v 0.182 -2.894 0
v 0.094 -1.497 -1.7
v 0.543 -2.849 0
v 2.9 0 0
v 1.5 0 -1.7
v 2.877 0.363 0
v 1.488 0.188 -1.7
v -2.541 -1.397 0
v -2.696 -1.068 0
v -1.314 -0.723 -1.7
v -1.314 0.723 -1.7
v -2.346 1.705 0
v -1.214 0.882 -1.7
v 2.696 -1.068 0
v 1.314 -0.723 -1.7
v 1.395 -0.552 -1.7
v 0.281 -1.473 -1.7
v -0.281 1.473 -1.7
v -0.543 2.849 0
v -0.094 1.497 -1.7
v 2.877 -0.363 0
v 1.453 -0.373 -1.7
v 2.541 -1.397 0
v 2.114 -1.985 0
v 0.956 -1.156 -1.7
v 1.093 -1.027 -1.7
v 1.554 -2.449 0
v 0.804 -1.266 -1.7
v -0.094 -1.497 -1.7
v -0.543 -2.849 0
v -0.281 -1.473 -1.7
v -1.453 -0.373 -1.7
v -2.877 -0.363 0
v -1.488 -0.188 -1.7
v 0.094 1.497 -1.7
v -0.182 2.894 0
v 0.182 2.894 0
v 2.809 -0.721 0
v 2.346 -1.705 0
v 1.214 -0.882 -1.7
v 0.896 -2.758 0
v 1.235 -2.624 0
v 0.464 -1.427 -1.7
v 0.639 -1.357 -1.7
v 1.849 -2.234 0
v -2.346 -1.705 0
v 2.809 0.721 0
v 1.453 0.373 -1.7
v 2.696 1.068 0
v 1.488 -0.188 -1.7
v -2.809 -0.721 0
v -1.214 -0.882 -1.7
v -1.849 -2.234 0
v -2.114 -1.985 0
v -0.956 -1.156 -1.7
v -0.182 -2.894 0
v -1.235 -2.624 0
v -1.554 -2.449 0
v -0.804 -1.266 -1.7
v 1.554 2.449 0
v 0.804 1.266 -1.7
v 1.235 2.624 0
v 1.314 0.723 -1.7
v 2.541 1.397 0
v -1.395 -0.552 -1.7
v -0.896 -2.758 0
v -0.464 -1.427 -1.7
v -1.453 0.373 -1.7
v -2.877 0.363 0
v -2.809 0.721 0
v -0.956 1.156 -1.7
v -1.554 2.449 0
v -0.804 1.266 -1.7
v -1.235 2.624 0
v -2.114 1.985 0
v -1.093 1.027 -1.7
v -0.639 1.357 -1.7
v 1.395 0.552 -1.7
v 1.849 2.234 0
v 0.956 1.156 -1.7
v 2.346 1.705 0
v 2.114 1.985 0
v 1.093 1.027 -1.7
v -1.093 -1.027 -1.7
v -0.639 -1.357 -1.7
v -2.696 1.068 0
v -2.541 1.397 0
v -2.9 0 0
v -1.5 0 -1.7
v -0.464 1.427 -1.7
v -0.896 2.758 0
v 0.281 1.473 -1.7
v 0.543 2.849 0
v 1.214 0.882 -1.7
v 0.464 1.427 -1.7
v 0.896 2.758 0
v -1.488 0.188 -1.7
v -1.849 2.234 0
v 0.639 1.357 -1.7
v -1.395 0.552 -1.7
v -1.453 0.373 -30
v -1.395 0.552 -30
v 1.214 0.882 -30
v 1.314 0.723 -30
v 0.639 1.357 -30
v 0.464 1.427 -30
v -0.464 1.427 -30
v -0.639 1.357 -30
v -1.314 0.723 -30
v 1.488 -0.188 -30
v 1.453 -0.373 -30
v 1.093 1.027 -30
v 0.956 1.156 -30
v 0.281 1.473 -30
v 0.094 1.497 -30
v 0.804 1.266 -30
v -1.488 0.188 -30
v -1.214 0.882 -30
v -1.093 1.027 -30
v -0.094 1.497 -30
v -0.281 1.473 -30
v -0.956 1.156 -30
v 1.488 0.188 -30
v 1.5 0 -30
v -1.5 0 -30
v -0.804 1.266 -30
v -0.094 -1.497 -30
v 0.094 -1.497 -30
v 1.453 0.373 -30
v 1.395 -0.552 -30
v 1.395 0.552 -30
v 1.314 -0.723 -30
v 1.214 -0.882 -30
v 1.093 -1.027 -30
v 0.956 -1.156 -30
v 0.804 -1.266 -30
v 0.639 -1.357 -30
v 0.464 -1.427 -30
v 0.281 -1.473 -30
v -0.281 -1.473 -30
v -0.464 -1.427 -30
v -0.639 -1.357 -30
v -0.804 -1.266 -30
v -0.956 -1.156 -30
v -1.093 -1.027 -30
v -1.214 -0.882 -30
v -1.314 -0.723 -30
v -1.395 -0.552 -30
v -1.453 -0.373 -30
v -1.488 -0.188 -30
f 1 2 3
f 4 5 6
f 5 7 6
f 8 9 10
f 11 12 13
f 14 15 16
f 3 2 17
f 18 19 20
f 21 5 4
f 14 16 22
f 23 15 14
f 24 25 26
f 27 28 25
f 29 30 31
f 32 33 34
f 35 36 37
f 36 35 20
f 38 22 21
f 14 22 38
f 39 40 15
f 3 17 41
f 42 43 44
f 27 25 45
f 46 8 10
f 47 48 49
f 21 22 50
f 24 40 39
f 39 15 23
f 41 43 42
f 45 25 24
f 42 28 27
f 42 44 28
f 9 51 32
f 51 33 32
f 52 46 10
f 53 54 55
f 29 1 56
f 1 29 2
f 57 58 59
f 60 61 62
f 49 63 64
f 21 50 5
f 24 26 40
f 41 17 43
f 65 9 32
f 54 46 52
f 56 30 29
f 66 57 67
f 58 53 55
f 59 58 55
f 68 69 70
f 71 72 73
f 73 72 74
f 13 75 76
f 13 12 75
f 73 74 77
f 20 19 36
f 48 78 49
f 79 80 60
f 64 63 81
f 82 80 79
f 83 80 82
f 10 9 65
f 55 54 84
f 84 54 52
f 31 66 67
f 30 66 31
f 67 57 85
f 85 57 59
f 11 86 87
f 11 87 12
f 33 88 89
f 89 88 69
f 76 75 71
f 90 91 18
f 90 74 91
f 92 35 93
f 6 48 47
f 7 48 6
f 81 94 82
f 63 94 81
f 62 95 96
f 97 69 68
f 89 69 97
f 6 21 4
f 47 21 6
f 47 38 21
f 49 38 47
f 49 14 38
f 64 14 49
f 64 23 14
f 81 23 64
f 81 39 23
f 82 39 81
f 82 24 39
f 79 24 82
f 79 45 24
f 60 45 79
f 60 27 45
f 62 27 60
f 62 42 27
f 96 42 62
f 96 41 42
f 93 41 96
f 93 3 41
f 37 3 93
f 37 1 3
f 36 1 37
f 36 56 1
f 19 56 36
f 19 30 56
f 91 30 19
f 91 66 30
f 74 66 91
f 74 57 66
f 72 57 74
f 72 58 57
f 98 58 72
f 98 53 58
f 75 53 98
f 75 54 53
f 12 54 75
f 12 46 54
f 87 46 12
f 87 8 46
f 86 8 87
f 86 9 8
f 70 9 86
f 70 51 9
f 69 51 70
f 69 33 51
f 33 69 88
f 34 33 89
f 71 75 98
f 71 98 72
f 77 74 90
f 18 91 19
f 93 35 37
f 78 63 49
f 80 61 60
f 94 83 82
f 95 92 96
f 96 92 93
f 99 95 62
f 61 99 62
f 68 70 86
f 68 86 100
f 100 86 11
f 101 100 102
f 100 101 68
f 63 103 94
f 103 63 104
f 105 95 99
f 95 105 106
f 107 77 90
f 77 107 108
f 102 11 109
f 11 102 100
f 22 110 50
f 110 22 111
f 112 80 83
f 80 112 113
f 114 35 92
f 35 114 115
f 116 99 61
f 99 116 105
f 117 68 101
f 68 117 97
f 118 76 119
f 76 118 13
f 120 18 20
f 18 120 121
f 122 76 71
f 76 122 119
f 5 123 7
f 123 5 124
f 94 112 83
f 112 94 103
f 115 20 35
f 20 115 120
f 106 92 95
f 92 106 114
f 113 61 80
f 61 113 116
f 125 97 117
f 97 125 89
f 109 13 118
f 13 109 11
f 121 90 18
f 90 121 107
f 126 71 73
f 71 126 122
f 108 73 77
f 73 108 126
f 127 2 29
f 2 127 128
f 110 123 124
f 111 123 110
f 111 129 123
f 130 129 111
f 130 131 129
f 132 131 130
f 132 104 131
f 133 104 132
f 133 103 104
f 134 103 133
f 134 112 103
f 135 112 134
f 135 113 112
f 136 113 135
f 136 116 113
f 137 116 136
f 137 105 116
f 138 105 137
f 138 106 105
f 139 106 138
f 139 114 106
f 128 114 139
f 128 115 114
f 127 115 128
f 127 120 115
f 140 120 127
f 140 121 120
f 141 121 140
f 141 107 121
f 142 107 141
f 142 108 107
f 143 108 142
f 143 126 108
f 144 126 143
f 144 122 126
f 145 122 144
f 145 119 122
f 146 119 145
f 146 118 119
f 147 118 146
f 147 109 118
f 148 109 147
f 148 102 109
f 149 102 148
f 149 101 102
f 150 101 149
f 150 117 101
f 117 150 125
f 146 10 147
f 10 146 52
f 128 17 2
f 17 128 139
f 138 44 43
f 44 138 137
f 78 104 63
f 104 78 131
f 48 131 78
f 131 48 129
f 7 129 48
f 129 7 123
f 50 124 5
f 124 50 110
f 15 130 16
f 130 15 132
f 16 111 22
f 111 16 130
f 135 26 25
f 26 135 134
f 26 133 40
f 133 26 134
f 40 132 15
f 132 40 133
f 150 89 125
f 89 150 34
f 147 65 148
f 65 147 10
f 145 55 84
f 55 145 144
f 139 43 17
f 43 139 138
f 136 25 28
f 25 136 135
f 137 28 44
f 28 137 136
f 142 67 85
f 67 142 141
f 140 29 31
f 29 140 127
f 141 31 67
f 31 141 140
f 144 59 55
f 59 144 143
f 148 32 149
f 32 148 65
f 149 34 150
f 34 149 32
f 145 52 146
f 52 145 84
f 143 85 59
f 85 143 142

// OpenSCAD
// Generated by SolidPython 1.1.3 on 2023-03-13 21:43:03
$fn = 50;


difference() {
	union() {
		translate(v = [0, 0, -1.7000000000]) {
			rotate(a = [0, 0, 0]) {
				cylinder(h = 1.7000000000, r1 = 1.5000000000, r2 = 2.9000000000);
			}
		}
		translate(v = [0, 0, -30]) {
			rotate(a = [0, 0, 0]) {
				cylinder(h = 30, r = 1.5000000000);
			}
		}
	}
	union();
}
/***********************************************
*********      SolidPython code:      **********
************************************************
 
from solid import *
import os
import subprocess

import oomB

import opsc_library_gen

mode = "laser"
#mode = "3d_print"

defined_objects = {}

radius_dict = {}
countersunk_dict = {}


def set_mode(m):
    global mode
    mode = m
    radius_dict['M6'] = 6.5/2
    radius_dict['M3'] = 3.3/2
    if mode == "laser":
        radius_dict['M6'] = 6/2
        radius_dict['M3'] = 3/2

    countersunk_dict['M3'] = {}
    countersunk_dict['M3']['little_rad'] = radius_dict['M3']
    countersunk_dict['M3']['big_rad'] = (5.5+0.6)/2
    if mode == "laser":
        countersunk_dict['M3']['big_rad'] = (4.75+0.6)/2
        countersunk_dict['M3']['little_rad'] = (4.75+0.6)/2

    countersunk_dict['M3']['height'] = 1.7


def opsc_make_object(filename, objects, save_type="none",resolution=50, layers = 1, tilediff = 200, mode="laser", overwrite=True):
    if overwrite or not os.path.exists(filename):
        set_mode(mode)
        save_type = save_type.lower()
        os.makedirs(os.path.dirname(filename), exist_ok=True)
        final_object = opsc_get_object(objects, mode = mode)
        # Save the final object to the specified filename    
        scad_render_to_file(final_object, filename, file_header='$fn = %s;' % resolution, include_orig_code=True)
        if save_type == "all":
            saveToAll(filename)
        elif save_type == "dxf":
            saveToDxf(filename)
        if mode == "laser":
            filename_laser = filename.replace(".scad","-flat.scad")
            scad_render_to_file(getLaser(final_object, layers=layers, tilediff=tilediff), filename_laser, file_header='$fn = %s;' % resolution, include_orig_code=True)
            if save_type == "all":
                saveToAll(filename_laser)
            elif save_type == "dxf":
                saveToDxf(filename_laser)


def opsc_get_object(objects, mode = "laser"):
    # Create the solidpython objects only include the positive objects and if they don't have inclusion or their inclusion is either all or mode
    # Initialize an empty list to store the results
    positive_objects = []

    # Iterate over the "objects" list
    for obj in objects:
        # Check if the current object has a "type" key with a value of "positive"
        if obj['type'] == 'positive':
            # Check if the current object has an "inclusion" key and its value matches "mode",
            # or if the current object does not have an "inclusion" key at all
            if not 'inclusion' in obj or obj['inclusion'] == "all" or obj['inclusion'] == mode:
                # Call the "get_opsc_item" function with the current object as an argument
                opsc_item = get_opsc_item(obj)
                # Add the result to the "positive_objects" list
                positive_objects.append(opsc_item)
# Initialize an empty list to store the results
    negative_objects = []

    # Iterate over the "objects" list
    for obj in objects:
        # Check if the current object has a "type" key with a value of "negative"
        if obj['type'] == 'negative':
            # Check if the current object has an "inclusion" key and its value matches "mode",
            # or if the current object does not have an "inclusion" key at all
            if not 'inclusion' in obj or obj['inclusion'] == "all" or obj['inclusion'] == mode:
                # Call the "get_opsc_item" function with the current object as an argument
                opsc_item = get_opsc_item(obj)
                # Add the result to the "negative_objects" list
                negative_objects.append(opsc_item)
    
    #positive_objects = [get_opsc_item(obj) for obj in objects if obj['type'] == 'positive']
    #negative_objects = [get_opsc_item(obj) for obj in objects if obj['type'] == 'negative']
    # Union the positive objects
    positive_object = union()(*positive_objects)
    # Union the negative objects
    negative_object = union()(*negative_objects)
    # Create the final object by subtracting the negative objects from the positive objects
    return difference()(positive_object, negative_object)

def get_opsc_item(params):
    # A dictionary to map radius string values to numerical values
    #radius_dict = {'small': 5, 'medium': 10, 'large': 15}
    # An array of function names for basic shapes
    basic_shapes = ['cube', 'sphere', 'cylinder']
    
    # An array of function names for other shapes
    other_shapes = ['hole', 'slot', 'rounded_rectangle', 'countersunk', 'polyg']
    


    # Convert radius to r if present, and remove radius from the params dictionary
    if 'radius' in params:
        if isinstance(params['radius'], str):
            # Use the radius_dict to map the radius string value to a numerical value
            params['r'] = radius_dict[params['radius']]
        else:
            params['r'] = params['radius']
        del params['radius']
    

    # Check if the object type is a basic shape
    if params['shape'] in basic_shapes:
        # Remove shape and unexpected dictionary values
        allowed_keys = {'size', 'r', 'r1', 'r2', 'd', 'h', 'rw', 'rh', 'dw', 'dh'}
        shape_params = {k: v for k, v in params.items() if k in allowed_keys}

        #params['m'] = "#"
        ###split for adding modifier
        try:
            m = params['m']
            func = globals()[params['shape']]
            return_value = get_opsc_transform(params,func(**shape_params))
            return_value = (return_value).set_modifier(m)
            return return_value
        except KeyError as e:
            return get_opsc_transform(params,globals()[params['shape']](**shape_params))
        
    elif params['shape'] == 'polygon':
        # Remove shape and unexpected dictionary values
        h  = params['height']
        allowed_keys = {'points'}
        shape_params = {k: v for k, v in params.items() if k in allowed_keys}

        # Call the corresponding function for the shape parameter, using ** notation to pass the shape_params dictionary as keyword arguments
        params["rot"] = [0,0,0]        
        try:
            m = params['m']
            func = globals()[params['shape']]
            return_value = get_opsc_transform(params,linear_extrude(h)(globals()[params['shape']](**shape_params)))
            return_value = (return_value).set_modifier(m)
            return return_value
        except KeyError as e:
            return_value = get_opsc_transform(params,linear_extrude(h)(globals()[params['shape']](**shape_params)))
            return_value = (return_value)
            return return_value


    # If the object type is not a basic shape, check if it's a defined object or one of the other shapes
    elif params['shape'] in other_shapes:
        # Call the corresponding function for the shape parameter, passing the params dictionary as an argument
        p2 = copy.deepcopy(params)
        p2["pos"] = [0,0,0]
        return get_opsc_transform(params,globals()[params['shape']](p2))
    
    # If the object is not a basic shape or a defined object, try to import it from a .scad file
    else:
        obj = defined_objects[params['shape']]
        return get_opsc_transform(params,obj)

def get_opsc_transform(params, solid_obj):
    # Rotate the object based on the 'rot' field in the params dictionary, or the 'rotX', 'rotY', and 'rotZ' fields if 'rot' is not present
    rot = params.get('rot', [])
    if rot:
        rotX, rotY, rotZ = rot
    else:
        rotX = params.get('rotX', 0)
        rotY = params.get('rotY', 0)
        rotZ = params.get('rotZ', 0)
    solid_obj = rotate([rotX, rotY, rotZ])(solid_obj)

    # Translate the object based on the 'pos' field in the params dictionary, or the 'x', 'y', and 'z' fields if 'pos' is not present
    pos = params.get('pos', [])
    if pos:
        x, y, z = pos
    else:
        x = params.get('x', 0)
        y = params.get('y', 0)
        z = params.get('z', 0)
    solid_obj = translate([x, y, z])(solid_obj)
    return solid_obj


import random

def opsc_easy_array(type, shape, repeats, pos_start, shift_arr, **kwargs):
    for i in range(0,3):
        repeats.append(1)
        pos_start.append(0)
        shift_arr.append(0)
    return_objects = []

    for x in range(0,repeats[0]):
        for y in range(0,repeats[1]):
            for z in range(0,repeats[2]):
                return_objects.append(opsc_easy(type, shape, pos=[pos_start[0]+x*shift_arr[0],pos_start[1]+y*shift_arr[1],pos_start[2]+z*shift_arr[2]], **kwargs))
    return return_objects                



def opsc_easy(type, shape, **kwargs):
    obj = {
        'type': type,
        'shape': shape
    }
    for param in ['size', 'r', 'r1', 'r2', 'd', 'h', 'rw', 'rh', 'dw', 'dh', 'pos', 'x', 'y', 'z', 'rot', 'rotX', 'rotY', 'rotZ', "w", "inclusion", 'sides', 'height', "m"]:
        if param in kwargs:
            obj[param] = kwargs[param]
    return obj

def hole(params):
    p2 = copy.deepcopy(params)  
    # Check if the radius is a string and replace it with the corresponding value from the dictionary
    if isinstance(p2['r'], str):
        p2['r'] = radius_dict[p2['r']]
    
    # Set the height to 100 if not specified
    if 'h' not in p2:
        p2['h'] = 100
        p2["pos"] = [0,0,-50]
    p2["center"] = True
    # Create the cylinder object
    p2["shape"] = "cylinder"
    p2["type"] = "positive"

    return get_opsc_item(p2)

import copy

def countersunk(params):
    p2 = copy.deepcopy(params)
    counter_rad = p2['r']
    p2['r'] = radius_dict[p2['r']]
    hp = copy.deepcopy(p2)
    hp["type"] = "positive"
    hp["shape"] = "hole"
    del hp["rot"]
    hol = get_opsc_item(hp)
    
    cp = copy.deepcopy(p2)
    cp["h"] = countersunk_dict[counter_rad]["height"]
    cp["r2"] = countersunk_dict[counter_rad]["little_rad"]
    cp["r1"] = countersunk_dict[counter_rad]["big_rad"]
    del cp["r"]
    del cp["rot"]
    cp["type"] = "positive"
    cp["shape"] = "cylinder"
    cp["pos"] = [0,0,0]

    top = get_opsc_item(cp)
    return union()(hol,top)



def slot(params):  
    p2 = copy.deepcopy(params) 
    if isinstance(p2['r'], str):
        p2['r'] = radius_dict[p2['r']]
    p2["type"] = "positive"
    p2["shape"] = "hole"
    del p2["rot"]
    p2["pos"] = [0,0,0]
    left = copy.deepcopy(p2)
    right = copy.deepcopy(p2)
    left["pos"][0] = p2["w"] / 2 - p2["r"] 
    
    right["pos"][0] = -p2["w"] / 2 + p2["r"] 
    pass
    leftObj = get_opsc_item(left)
    rightObj = get_opsc_item(right)
    return hull()(leftObj, rightObj)

def rounded_rectangle(params):   
    p2 = copy.deepcopy(params) 
    p2["h"] = p2["size"][2]
    p2["pos"] = p2.get("pos", [0, 0, 0]) 
    p2["type"] = "positive"
    p2["shape"] = "hole"
    p2["pos"] = [0,0,0]
    
    if 'rot' in p2:
        del p2["rot"]   
    if 'r' not in p2:
        p2["r"] = 5 
    tl = copy.deepcopy(p2)
    tr = copy.deepcopy(p2)
    bl = copy.deepcopy(p2)
    br = copy.deepcopy(p2)
    tl["pos"][0] = -(p2["size"][0] - p2["r"]*2)/2
    tl["pos"][1] = (p2["size"][1] - p2["r"]*2)/2
    tr["pos"][0] = (p2["size"][0] - p2["r"]*2)/2
    tr["pos"][1] = (p2["size"][1] - p2["r"]*2)/2
    bl["pos"][0] = -(p2["size"][0] - p2["r"]*2)/2
    bl["pos"][1] = -(p2["size"][1] - p2["r"]*2)/2
    br["pos"][0] = (p2["size"][0] - p2["r"]*2)/2
    br["pos"][1] = -(p2["size"][1] - p2["r"]*2)/2
    del tl["size"]
    del tr["size"]
    del bl["size"]
    del br["size"]
    tlo = get_opsc_item(tl)
    tro = get_opsc_item(tr)
    blo = get_opsc_item(bl)
    bro = get_opsc_item(br)    
    return hull()(tlo, tro, blo, bro)



def polyg(params):
    p2 = copy.deepcopy(params) 
    p2["type"] = "positive"
    p2["shape"] = "polygon"
    p2["pos"] = [0,0,0]
    sides = p2["sides"]
    radius = p2["r"]    
    angles = [i * 360 / sides for i in range(sides)]
    points = regular_polygon(sides, radius)
    
    p2["points"] = points
    return get_opsc_item(p2)

import math

def regular_polygon(num_sides, radius):
    # Calculate the angle between each side
    angle = 2 * math.pi / num_sides

    # Calculate the points of the polygon
    points = []
    for i in range(num_sides):
        x = radius * math.cos(i * angle)
        y = radius * math.sin(i * angle)
        points.append((x, y))
    return points

def import_scad_object(filename):
    # Import the .scad file and convert it to a solidpython object
    #filename = "parts"
    obj = import_scad(filename)
    return obj.main()



import os
import solid as solidpython

# A dictionary to store the defined objects


def load_scad_objects():
    opsc_library_gen.gen_library(defined_objects)

import random

def test(num_objects):
    objects = []
    for i in range(num_objects):
        # Choose a random shape
        #shape = random.choice(['cube', 'sphere', 'cylinder', 'hole', 'slot', "rounded_rectangle"])
        shape = random.choice(["rounded_rectangle"])

        # Choose a random type
        type = random.choice(['positive', 'negative'])
        
        # Create an empty object dictionary
        obj = {'shape': shape, 'type': type}
        
        # Set shape-specific parameters
        if obj['shape'] in ['cube']:
            obj['size'] =  [random.uniform(5, 15), random.uniform(5, 15), random.uniform(5, 15)]
        if obj['shape'] in ['rounded_rectangle']:
            obj['size'] =  [random.uniform(5, 15), random.uniform(5, 15), random.uniform(5, 15)]
            obj['r'] = random.uniform(0.5, 5)
        elif obj['shape'] == 'sphere':
            obj['r'] = random.uniform(5, 15)
        elif obj['shape'] in ['cylinder', 'hole']:
            obj['r'] = random.uniform(0.5, 5)
            obj['h'] = random.uniform(5, 15)
        elif obj['shape'] == 'slot':
            obj['r'] = random.uniform(0.5, 5)
            obj['h'] = random.uniform(5, 15)
            obj['w'] = random.uniform(5, 15)
        
        # Set a random position and rotation
        obj['pos'] = [random.uniform(-20, 20), random.uniform(-20, 20), random.uniform(-20, 20)]
        obj['rot'] = [random.uniform(-180, 180), random.uniform(-180, 180), random.uniform(-180, 180)]
        
        # Add the object to the list
        objects.append(obj)
    return objects

####### old file saving
def saveToAll(fileIn):
    saveToStl(fileIn)
    saveToDxf(fileIn)
    saveToPng(fileIn)
    saveToSvg(fileIn)

def saveToDxf(fileIn, fileOut="", copy_to_laser=True):
    if fileOut == "":
        fileOut = fileIn.replace(".scad",".dxf")
    saveToFile(fileIn, fileOut)


    
def saveToPng(fileIn, fileOut="",extra="--render"):
    if fileOut == "":
        fileOut = fileIn.replace(".scad",".png")
    saveToFile(fileIn, fileOut)

def saveToStl(fileIn, fileOut=""):
    if fileOut == "":
        fileOut = fileIn.replace(".scad",".stl")
    saveToFile(fileIn, fileOut)
    
def saveToSvg(fileIn, fileOut=""):
    if fileOut == "":
        fileOut = fileIn.replace(".scad",".svg")
    saveToFile(fileIn, fileOut)

def saveToFile(fileIn, fileOut,extra=""):
    #extra = extra + " --colorscheme Tomorrow"

    launchStr = 'openscad -o "' + fileOut + '"' + extra + ' "' + fileIn + '"'
    if ".png" in fileOut:
        launchStr = launchStr + " --render"
    print("            saveToFile launch string: " + launchStr)
    subprocess.run(launchStr)
    x=0

def getLaser(final_object,start=1.5,layers=1,thickness=3,tilediff=200):
        rv= []

        for x in range(layers):
            rv.append(translate([0,x*tilediff,0])(
                    projection()(
                        intersection()(translate([-500,-500,start+x*thickness])(cube(size=[1000,1000,0.1])),
                            final_object
                        )
                    )
            )
            )
            
        return union()(rv)

set_mode("laser")
load_scad_objects() 
 
************************************************/
